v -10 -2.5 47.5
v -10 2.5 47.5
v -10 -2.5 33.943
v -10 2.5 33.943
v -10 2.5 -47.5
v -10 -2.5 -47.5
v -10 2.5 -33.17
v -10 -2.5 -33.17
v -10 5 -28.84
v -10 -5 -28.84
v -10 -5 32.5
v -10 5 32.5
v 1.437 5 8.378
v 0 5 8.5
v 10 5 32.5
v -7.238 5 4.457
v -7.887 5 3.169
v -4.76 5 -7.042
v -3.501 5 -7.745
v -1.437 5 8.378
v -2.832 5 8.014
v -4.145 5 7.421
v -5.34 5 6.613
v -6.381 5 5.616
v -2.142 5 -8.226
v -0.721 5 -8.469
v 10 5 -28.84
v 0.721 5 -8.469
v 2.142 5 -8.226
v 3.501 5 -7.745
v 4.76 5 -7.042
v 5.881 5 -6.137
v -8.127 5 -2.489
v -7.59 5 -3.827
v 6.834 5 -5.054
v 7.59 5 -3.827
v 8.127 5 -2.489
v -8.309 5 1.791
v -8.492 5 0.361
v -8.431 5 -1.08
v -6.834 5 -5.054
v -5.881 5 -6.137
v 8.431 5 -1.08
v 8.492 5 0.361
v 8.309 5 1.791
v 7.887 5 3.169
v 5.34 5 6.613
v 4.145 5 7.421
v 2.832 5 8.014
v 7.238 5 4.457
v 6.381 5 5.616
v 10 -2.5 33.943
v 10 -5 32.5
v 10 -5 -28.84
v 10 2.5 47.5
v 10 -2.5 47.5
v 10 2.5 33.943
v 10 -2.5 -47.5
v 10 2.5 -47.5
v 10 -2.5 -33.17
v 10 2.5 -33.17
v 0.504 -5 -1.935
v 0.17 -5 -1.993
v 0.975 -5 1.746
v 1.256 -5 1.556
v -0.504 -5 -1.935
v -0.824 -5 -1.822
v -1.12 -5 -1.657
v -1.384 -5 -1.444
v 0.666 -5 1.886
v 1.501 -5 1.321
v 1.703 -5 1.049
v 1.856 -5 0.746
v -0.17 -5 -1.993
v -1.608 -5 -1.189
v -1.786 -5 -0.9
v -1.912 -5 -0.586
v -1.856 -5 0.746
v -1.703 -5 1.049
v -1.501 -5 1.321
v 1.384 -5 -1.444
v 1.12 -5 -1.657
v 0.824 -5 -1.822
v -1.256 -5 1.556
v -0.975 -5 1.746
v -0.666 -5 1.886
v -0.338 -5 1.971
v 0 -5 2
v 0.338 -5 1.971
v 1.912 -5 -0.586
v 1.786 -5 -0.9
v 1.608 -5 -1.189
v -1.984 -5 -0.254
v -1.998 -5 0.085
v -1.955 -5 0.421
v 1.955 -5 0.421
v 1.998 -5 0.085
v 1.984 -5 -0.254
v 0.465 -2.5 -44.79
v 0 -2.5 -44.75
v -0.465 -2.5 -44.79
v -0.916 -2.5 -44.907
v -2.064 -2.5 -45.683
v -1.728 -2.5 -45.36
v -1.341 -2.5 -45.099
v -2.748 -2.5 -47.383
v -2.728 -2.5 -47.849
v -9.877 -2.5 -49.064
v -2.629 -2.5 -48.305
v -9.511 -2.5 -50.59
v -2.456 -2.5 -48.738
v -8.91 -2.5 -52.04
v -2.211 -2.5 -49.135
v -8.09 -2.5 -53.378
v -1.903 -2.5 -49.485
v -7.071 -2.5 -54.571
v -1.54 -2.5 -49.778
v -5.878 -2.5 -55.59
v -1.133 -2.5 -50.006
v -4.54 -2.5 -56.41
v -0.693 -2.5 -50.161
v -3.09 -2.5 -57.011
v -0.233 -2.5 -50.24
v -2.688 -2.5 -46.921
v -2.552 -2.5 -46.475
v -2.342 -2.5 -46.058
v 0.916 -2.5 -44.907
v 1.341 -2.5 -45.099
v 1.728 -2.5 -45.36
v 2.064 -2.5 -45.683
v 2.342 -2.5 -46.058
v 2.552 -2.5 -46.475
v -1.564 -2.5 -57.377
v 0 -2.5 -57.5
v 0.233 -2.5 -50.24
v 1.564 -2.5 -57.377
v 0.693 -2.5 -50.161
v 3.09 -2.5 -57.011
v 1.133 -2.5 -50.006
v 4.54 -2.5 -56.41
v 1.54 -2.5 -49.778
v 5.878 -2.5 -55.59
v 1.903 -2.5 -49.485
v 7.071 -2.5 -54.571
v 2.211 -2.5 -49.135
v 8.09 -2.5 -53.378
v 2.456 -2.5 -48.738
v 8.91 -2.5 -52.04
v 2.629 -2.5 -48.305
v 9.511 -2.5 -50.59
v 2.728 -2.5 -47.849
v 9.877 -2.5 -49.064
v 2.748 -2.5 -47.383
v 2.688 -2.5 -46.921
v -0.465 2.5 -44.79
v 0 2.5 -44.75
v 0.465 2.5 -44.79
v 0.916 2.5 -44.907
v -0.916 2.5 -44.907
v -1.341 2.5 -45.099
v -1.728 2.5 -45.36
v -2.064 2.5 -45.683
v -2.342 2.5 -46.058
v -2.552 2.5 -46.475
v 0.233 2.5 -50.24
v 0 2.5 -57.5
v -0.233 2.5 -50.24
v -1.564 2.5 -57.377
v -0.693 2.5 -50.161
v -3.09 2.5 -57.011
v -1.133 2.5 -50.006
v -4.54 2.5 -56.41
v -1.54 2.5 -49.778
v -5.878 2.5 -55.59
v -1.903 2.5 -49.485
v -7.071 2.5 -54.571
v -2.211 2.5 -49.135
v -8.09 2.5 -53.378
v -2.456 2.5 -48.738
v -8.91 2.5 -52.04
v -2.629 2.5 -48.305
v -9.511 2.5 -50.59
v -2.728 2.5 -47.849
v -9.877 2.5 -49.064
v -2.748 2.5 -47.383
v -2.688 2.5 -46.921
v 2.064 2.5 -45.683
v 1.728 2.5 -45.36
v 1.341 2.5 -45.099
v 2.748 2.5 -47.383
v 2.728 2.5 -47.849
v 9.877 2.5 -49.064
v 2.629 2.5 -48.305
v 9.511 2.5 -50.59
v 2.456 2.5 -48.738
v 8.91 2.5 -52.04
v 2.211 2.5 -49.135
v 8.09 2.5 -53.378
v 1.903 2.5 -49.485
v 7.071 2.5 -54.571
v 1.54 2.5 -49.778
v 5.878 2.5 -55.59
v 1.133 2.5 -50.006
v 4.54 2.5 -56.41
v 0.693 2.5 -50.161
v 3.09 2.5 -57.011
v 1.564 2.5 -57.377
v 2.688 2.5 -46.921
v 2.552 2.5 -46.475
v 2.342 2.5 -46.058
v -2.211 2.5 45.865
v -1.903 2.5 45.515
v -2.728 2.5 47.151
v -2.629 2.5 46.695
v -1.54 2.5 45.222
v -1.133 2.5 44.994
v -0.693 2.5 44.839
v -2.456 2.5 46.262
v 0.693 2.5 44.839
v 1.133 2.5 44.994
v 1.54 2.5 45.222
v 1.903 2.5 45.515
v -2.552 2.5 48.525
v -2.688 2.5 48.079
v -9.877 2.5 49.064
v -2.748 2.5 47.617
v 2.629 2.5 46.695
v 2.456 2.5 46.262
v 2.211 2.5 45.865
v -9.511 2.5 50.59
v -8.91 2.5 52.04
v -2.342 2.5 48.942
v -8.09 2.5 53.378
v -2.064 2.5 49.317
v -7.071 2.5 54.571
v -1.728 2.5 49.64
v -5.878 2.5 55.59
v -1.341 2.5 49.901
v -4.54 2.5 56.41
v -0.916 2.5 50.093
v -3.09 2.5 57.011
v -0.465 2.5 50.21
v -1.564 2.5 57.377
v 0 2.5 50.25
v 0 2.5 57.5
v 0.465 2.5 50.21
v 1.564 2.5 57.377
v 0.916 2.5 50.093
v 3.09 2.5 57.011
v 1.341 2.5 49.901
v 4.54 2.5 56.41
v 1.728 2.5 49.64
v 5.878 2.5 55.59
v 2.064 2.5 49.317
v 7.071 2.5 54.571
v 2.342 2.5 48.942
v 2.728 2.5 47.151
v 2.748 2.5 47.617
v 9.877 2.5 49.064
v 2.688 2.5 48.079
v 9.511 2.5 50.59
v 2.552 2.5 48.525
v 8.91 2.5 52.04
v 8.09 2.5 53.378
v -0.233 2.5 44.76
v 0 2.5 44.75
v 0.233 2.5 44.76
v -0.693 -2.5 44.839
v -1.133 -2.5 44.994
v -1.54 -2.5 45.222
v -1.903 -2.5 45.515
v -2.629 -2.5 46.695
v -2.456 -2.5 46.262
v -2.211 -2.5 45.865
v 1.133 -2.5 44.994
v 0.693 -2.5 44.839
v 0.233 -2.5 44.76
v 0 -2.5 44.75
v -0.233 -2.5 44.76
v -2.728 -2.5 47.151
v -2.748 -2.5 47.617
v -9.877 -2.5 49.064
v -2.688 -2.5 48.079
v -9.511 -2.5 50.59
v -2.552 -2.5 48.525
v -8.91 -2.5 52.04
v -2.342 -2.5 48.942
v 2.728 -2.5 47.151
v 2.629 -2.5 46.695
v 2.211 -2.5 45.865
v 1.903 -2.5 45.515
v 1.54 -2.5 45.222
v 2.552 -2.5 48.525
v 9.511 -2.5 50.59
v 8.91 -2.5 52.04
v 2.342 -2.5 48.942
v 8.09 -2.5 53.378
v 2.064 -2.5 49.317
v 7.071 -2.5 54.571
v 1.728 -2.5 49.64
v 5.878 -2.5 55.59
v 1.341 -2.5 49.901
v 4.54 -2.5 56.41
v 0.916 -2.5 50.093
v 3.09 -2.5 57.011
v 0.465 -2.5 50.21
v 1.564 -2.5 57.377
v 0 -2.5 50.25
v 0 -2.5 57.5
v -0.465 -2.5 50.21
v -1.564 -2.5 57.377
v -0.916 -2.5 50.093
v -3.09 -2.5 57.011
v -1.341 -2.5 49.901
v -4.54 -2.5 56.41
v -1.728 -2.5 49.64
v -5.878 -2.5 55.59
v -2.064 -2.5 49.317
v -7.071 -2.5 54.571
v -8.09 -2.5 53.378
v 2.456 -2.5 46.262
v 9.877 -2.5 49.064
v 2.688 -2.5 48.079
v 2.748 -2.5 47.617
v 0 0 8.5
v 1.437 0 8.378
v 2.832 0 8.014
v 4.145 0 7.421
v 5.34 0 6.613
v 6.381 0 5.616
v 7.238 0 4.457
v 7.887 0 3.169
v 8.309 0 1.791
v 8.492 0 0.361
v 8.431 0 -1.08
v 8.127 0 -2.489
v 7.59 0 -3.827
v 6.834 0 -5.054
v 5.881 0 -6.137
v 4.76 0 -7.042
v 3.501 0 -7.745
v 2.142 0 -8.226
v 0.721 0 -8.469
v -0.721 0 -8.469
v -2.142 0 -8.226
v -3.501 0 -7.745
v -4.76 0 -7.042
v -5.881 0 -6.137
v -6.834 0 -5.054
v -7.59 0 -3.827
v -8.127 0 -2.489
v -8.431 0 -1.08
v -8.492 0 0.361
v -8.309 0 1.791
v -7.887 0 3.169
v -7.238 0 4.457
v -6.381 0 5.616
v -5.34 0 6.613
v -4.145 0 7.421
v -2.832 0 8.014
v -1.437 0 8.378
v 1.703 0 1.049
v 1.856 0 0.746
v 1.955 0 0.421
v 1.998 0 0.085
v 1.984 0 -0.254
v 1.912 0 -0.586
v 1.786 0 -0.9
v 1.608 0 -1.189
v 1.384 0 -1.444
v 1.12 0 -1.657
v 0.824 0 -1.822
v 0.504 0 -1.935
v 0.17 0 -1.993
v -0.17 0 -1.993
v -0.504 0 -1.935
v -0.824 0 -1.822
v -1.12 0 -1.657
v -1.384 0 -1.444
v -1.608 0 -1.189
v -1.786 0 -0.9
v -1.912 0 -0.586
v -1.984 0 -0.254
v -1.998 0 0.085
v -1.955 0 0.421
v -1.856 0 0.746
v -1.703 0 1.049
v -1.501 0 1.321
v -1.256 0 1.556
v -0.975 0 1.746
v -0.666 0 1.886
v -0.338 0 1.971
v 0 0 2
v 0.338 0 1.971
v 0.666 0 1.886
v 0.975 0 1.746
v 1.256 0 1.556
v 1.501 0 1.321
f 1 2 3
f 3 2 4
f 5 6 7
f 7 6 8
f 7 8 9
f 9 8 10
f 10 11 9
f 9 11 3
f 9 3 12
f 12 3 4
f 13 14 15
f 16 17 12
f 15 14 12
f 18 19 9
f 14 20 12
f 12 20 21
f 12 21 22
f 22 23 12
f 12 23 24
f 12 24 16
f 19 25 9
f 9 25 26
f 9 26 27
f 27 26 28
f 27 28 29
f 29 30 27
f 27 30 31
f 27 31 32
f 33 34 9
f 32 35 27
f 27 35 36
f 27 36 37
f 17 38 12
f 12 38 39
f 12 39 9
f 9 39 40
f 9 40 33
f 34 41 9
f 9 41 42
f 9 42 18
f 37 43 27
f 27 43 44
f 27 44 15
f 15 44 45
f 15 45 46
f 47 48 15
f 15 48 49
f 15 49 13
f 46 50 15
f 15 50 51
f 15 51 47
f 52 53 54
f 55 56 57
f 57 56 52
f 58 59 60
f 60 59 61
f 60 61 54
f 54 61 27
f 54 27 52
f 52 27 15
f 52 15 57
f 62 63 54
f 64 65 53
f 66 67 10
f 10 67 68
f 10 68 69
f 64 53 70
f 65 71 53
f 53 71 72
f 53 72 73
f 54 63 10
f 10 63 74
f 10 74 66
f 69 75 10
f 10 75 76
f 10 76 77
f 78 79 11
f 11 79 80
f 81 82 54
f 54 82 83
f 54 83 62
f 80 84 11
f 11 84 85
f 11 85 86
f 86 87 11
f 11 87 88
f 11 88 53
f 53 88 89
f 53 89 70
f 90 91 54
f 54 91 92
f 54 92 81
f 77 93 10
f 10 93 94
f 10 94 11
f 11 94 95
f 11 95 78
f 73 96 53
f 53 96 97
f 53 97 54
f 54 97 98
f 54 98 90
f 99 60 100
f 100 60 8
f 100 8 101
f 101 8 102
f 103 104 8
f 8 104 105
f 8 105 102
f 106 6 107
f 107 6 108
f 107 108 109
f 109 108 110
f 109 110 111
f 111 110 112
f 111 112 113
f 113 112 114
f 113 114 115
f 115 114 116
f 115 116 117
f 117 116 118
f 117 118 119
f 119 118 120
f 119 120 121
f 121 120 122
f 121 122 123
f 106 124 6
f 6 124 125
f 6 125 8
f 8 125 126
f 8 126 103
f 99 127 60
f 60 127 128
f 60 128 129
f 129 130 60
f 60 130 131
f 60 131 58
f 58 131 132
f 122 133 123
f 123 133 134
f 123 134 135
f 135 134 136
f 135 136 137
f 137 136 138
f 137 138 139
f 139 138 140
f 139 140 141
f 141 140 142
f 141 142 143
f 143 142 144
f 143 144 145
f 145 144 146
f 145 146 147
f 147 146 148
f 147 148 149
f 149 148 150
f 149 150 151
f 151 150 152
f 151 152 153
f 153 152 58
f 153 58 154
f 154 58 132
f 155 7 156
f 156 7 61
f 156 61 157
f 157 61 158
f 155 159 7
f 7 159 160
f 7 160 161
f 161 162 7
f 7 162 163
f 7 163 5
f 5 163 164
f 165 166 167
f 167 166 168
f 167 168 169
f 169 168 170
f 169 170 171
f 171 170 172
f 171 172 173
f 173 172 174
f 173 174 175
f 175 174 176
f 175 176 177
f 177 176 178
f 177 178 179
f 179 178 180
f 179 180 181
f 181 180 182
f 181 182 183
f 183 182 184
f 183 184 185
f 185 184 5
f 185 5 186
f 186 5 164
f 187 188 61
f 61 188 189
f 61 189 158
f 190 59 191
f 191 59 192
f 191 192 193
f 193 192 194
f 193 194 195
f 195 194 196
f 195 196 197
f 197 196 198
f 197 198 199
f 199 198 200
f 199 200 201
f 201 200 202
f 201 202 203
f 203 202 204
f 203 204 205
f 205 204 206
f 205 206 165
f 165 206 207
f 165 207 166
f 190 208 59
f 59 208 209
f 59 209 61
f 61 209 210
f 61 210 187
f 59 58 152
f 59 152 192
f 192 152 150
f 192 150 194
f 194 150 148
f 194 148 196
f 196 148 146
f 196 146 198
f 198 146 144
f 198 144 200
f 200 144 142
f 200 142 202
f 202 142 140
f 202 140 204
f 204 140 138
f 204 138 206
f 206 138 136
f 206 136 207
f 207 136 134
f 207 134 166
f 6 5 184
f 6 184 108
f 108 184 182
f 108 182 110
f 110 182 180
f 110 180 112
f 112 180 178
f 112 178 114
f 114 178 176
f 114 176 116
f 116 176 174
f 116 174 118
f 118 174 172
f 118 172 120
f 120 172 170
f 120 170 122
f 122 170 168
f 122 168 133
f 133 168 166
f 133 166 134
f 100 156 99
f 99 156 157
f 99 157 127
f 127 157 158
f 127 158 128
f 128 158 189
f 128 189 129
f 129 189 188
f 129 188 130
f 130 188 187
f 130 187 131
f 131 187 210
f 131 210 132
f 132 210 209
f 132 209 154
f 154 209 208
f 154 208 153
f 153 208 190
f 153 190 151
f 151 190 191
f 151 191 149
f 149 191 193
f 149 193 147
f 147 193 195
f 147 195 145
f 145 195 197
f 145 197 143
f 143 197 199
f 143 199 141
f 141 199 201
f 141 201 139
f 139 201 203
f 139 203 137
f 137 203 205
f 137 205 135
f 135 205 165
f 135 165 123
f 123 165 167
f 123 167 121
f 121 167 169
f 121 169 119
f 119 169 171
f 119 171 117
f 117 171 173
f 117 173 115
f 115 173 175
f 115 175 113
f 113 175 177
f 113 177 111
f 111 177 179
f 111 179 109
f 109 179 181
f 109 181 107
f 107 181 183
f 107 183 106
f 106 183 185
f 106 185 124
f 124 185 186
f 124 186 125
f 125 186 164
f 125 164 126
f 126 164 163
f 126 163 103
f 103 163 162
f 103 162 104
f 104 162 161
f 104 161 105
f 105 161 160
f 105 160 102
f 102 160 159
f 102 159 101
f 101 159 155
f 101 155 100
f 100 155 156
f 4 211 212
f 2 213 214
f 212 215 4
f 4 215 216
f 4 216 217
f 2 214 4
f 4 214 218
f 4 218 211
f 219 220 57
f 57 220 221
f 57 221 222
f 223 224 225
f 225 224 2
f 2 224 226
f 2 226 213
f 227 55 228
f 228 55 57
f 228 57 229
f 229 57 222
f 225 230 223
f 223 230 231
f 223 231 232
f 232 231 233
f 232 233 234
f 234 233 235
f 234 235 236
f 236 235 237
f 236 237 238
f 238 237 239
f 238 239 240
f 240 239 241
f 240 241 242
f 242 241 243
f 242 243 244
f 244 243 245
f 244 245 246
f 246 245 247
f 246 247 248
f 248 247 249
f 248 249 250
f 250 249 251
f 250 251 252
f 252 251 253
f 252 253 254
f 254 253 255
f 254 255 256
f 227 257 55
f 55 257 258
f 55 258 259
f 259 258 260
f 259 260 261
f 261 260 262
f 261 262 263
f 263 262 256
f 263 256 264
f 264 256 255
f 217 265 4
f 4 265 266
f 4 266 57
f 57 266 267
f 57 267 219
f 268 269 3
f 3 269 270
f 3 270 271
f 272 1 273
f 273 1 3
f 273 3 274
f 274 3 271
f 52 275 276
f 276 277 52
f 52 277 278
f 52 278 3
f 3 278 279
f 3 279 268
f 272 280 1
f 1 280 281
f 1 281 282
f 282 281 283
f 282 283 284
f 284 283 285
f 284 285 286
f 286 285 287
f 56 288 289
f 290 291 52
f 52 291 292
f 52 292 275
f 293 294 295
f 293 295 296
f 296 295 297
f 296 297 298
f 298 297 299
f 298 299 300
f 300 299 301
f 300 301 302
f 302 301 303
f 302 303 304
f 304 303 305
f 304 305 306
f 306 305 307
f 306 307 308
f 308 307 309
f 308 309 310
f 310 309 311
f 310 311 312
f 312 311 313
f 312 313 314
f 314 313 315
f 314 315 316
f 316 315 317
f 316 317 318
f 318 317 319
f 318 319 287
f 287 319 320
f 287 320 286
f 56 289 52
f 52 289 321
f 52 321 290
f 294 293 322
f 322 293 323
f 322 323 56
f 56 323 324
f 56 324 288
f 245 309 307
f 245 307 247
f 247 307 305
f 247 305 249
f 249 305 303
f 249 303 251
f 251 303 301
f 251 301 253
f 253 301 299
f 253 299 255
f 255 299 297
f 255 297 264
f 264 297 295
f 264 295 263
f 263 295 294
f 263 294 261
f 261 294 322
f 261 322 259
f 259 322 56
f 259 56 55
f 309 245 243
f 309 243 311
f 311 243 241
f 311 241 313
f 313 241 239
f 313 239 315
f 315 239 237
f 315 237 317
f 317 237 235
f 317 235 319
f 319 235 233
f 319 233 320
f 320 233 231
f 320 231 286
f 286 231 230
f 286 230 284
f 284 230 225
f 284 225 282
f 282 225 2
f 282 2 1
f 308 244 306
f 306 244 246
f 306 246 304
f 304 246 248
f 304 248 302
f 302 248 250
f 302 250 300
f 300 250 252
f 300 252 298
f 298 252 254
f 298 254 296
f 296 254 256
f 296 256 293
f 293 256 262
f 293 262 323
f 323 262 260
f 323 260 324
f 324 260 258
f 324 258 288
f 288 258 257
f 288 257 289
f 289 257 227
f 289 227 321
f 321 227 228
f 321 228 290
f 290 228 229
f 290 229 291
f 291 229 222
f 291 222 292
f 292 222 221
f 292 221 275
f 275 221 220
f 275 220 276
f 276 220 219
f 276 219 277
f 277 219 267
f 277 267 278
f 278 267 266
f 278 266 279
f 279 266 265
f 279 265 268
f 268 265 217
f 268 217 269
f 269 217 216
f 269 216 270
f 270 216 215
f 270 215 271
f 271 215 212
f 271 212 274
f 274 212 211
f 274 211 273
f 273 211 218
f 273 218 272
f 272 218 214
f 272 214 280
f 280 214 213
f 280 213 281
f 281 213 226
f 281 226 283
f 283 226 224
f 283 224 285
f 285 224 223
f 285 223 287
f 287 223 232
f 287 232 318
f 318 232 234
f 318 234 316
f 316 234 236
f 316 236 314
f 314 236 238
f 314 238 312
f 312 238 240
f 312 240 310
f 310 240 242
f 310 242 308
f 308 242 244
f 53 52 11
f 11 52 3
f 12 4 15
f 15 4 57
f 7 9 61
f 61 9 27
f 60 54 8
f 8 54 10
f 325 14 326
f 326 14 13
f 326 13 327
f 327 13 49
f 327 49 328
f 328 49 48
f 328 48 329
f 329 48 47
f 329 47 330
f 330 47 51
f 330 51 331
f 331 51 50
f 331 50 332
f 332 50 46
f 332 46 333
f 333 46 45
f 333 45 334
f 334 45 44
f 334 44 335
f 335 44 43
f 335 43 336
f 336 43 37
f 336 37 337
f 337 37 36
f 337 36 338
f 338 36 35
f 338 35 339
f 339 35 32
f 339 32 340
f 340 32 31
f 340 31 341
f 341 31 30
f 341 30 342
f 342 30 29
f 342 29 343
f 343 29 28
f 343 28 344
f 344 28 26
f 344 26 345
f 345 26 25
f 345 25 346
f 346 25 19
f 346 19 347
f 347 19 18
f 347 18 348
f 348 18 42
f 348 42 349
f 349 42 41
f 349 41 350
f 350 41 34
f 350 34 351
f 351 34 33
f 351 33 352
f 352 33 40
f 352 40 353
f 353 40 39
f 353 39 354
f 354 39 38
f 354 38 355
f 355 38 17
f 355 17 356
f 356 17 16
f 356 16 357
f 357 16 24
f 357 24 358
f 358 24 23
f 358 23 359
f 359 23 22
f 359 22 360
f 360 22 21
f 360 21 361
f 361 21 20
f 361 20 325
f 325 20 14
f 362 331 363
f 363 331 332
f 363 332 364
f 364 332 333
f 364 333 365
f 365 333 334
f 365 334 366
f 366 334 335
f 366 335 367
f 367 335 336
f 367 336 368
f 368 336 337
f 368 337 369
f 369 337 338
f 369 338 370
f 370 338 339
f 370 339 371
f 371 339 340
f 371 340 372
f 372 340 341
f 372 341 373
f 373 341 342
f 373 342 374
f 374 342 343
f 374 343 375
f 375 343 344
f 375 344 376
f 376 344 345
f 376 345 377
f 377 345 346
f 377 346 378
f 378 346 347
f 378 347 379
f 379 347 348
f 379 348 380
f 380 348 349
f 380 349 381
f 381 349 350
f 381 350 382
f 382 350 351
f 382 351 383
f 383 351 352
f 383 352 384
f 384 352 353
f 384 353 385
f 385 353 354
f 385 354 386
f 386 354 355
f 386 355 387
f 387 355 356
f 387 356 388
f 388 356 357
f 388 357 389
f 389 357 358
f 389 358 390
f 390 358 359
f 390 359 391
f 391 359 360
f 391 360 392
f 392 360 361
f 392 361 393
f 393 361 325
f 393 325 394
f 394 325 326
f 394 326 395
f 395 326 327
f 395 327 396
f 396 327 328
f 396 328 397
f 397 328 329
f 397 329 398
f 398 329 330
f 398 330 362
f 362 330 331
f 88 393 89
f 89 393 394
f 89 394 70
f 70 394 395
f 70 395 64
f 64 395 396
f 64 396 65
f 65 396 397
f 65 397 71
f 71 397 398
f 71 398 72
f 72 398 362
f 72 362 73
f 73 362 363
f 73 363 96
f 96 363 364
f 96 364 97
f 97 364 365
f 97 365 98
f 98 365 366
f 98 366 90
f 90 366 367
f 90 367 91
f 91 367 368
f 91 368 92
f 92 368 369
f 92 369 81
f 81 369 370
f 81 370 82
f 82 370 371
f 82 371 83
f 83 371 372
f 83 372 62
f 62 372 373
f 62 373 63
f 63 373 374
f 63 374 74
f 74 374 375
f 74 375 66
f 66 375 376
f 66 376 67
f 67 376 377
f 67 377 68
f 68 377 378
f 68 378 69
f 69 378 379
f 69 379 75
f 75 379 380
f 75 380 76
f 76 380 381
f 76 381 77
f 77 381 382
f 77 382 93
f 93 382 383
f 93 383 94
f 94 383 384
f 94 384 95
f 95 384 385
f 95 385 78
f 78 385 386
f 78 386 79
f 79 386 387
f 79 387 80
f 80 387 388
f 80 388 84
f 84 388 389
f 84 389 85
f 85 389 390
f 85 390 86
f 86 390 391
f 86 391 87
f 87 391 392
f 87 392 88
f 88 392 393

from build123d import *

# Parameters (mm, degrees)
BOSS_EXTRUDE1_DEPTH      = 37.5
BOSS_EXTRUDE1_DEPTH_BACK = 37.5
SKETCH1_W                = 20
SKETCH1_H                = 10
SKETCH3_W                = 20
SKETCH3_H                = 5
BOSS_EXTRUDE2_DEPTH      = 20
FILLET1_R                = 10
SKETCH4_R                = 2.75
CUT_EXTRUDE1_DEPTH       = 59.84301148
FILLET1_OF_MIRROR3_R     = 10
CHAMFER1_SIZE            = 8.660254038
CHAMFER1_SIZE_2          = 5
SKETCH6_R                = 8.5
CUT_EXTRUDE2_DEPTH       = 5
CUT_EXTRUDE3_DEPTH       = 59.576872569
CUT_EXTRUDE3_DEPTH_BACK  = 59.576872569
SKETCH7_R                = 2


# Some blends are built 0.0001 mm under size
with BuildPart() as part:
    # Sketch1 → Boss-Extrude1 (new, two sides: drawn at the far end of the back side and taken through both)
    with BuildSketch(Plane.XY.offset(-BOSS_EXTRUDE1_DEPTH_BACK)):
        Rectangle(SKETCH1_W, SKETCH1_H)
    extrude(amount=BOSS_EXTRUDE1_DEPTH + BOSS_EXTRUDE1_DEPTH_BACK)

    # Sketch3 → Boss-Extrude2 (add)
    with BuildSketch(Plane(origin=(0, 0, -37.5), x_dir=(-1, 0, 0), z_dir=(0, 0, -1))):
        Rectangle(SKETCH3_W, SKETCH3_H)
    boss_extrude2 = extrude(amount=BOSS_EXTRUDE2_DEPTH)

    # Fillet1
    fillet1_edges = [part.edges().sort_by_distance(p)[0] for p in [
        (-10, 0, -57.5),
        (10, 0, -57.5),
    ]]
    fillet(fillet1_edges, radius=FILLET1_R - 0.0001)  # a hair under: the kernel refuses the full size

    # Sketch4 → Cut-Extrude1 (cut, through all)
    with BuildSketch(Plane(origin=(0, 2.5, 0), x_dir=(1, 0, 0), z_dir=(0, 1, 0))):
        with Locations(Location((0, 47.5, 0), (0, 0, 270))):
            Circle(SKETCH4_R)
    cut_extrude1 = extrude(amount=-CUT_EXTRUDE1_DEPTH, mode=Mode.SUBTRACT)

    # Mirror3: Boss-Extrude2, Cut-Extrude1 across plane
    add(boss_extrude2.mirror(Plane.XY))
    add(cut_extrude1.mirror(Plane.XY), mode=Mode.SUBTRACT)

    # Fillet1 of Mirror3
    fillet1_of_mirror3_edges = [part.edges().sort_by_distance(p)[0] for p in [
        (-10, 0, 57.5),
        (10, 0, 57.5),
    ]]
    fillet(fillet1_of_mirror3_edges, radius=FILLET1_OF_MIRROR3_R - 0.0001)  # a hair under: the kernel refuses the full size

    # Chamfer1
    # the kernel refuses this chamfer: 8.660254038, 5 mm, written as the material it takes off along each edge
    with BuildSketch(Plane(origin=(32.404819853, 5, -37.5), x_dir=(0, 0.019326765612700598, 0.9998132206222078), z_dir=(-1, 0, 0))) as chamfer1_piece_1_section:
        Polygon((CHAMFER1_SIZE * 0.999813220604, -CHAMFER1_SIZE * 0.0193267656124), (-CHAMFER1_SIZE_2 * 0.0193267656127, -CHAMFER1_SIZE_2 * 0.999813220622), (0, 0), align=None)
    chamfer1_piece_1 = extrude(amount=64.809639706, mode=Mode.PRIVATE)
    chamfer1_piece_1 = split(chamfer1_piece_1, bisect_by=Plane(origin=(0, 2.5, -34.039331058), z_dir=(0, 1, 0)), keep=Keep.TOP, mode=Mode.PRIVATE)
    add(chamfer1_piece_1, mode=Mode.SUBTRACT)
    with BuildSketch(Plane(origin=(-32.404819853, -5, -37.5), x_dir=(0, -0.019326765612700598, 0.9998132206222078), z_dir=(1, 0, 0))) as chamfer1_piece_2_section:
        Polygon((CHAMFER1_SIZE * 0.999813220604, -CHAMFER1_SIZE * 0.0193267656124), (-CHAMFER1_SIZE_2 * 0.0193267656127, -CHAMFER1_SIZE_2 * 0.999813220622), (0, 0), align=None)
    chamfer1_piece_2 = extrude(amount=64.809639706, mode=Mode.PRIVATE)
    chamfer1_piece_2 = split(chamfer1_piece_2, bisect_by=Plane(origin=(0, -2.5, -34.039331058), z_dir=(0, -1, 0)), keep=Keep.TOP, mode=Mode.PRIVATE)
    add(chamfer1_piece_2, mode=Mode.SUBTRACT)
    with BuildSketch(Plane(origin=(-32.404819853, -5, 37.5), x_dir=(0, 0.999813220622208, 0.019326765612700494), z_dir=(1, 0, 0))) as chamfer1_piece_3_section:
        Polygon((CHAMFER1_SIZE * 0.999813220604, -CHAMFER1_SIZE * 0.0193267656124), (-CHAMFER1_SIZE_2 * 0.0193267656127, -CHAMFER1_SIZE_2 * 0.999813220622), (0, 0), align=None)
    chamfer1_piece_3 = extrude(amount=64.809639706, mode=Mode.PRIVATE)
    chamfer1_piece_3 = split(chamfer1_piece_3, bisect_by=Plane(origin=(0, 2.5, 37.476500167), z_dir=(0, 1, 0)), keep=Keep.TOP, mode=Mode.PRIVATE)
    add(chamfer1_piece_3, mode=Mode.SUBTRACT)
    with BuildSketch(Plane(origin=(-32.404819853, -5, 37.5), x_dir=(0, 0.999813220622208, 0.019326765612700494), z_dir=(1, 0, 0))) as chamfer1_piece_4_section:
        Polygon((CHAMFER1_SIZE * 0.999813220604, -CHAMFER1_SIZE * 0.0193267656124), (-CHAMFER1_SIZE_2 * 0.0193267656127, -CHAMFER1_SIZE_2 * 0.999813220622), (0, 0), align=None)
    chamfer1_piece_4 = extrude(amount=64.809639706, mode=Mode.PRIVATE)
    chamfer1_piece_4 = split(chamfer1_piece_4, bisect_by=Plane(origin=(0, -2.5, 35.327003025), z_dir=(0, -1, 0)), keep=Keep.TOP, mode=Mode.PRIVATE)
    add(chamfer1_piece_4, mode=Mode.SUBTRACT)
    with BuildSketch(Plane(origin=(32.404819853, 5, 37.5), x_dir=(0, -0.999813220622208, 0.019326765612700494), z_dir=(-1, 0, 0))) as chamfer1_piece_5_section:
        Polygon((CHAMFER1_SIZE * 0.999813220604, -CHAMFER1_SIZE * 0.0193267656124), (-CHAMFER1_SIZE_2 * 0.0193267656127, -CHAMFER1_SIZE_2 * 0.999813220622), (0, 0), align=None)
    chamfer1_piece_5 = extrude(amount=64.809639706, mode=Mode.PRIVATE)
    chamfer1_piece_5 = split(chamfer1_piece_5, bisect_by=Plane(origin=(0, -2.5, 37.476500167), z_dir=(0, -1, 0)), keep=Keep.TOP, mode=Mode.PRIVATE)
    add(chamfer1_piece_5, mode=Mode.SUBTRACT)
    with BuildSketch(Plane(origin=(32.404819853, 5, 37.5), x_dir=(0, -0.999813220622208, 0.019326765612700494), z_dir=(-1, 0, 0))) as chamfer1_piece_6_section:
        Polygon((CHAMFER1_SIZE * 0.999813220604, -CHAMFER1_SIZE * 0.0193267656124), (-CHAMFER1_SIZE_2 * 0.0193267656127, -CHAMFER1_SIZE_2 * 0.999813220622), (0, 0), align=None)
    chamfer1_piece_6 = extrude(amount=64.809639706, mode=Mode.PRIVATE)
    chamfer1_piece_6 = split(chamfer1_piece_6, bisect_by=Plane(origin=(0, 2.5, 35.327003025), z_dir=(0, 1, 0)), keep=Keep.TOP, mode=Mode.PRIVATE)
    add(chamfer1_piece_6, mode=Mode.SUBTRACT)

    # Sketch6 → Cut-Extrude2 (cut)
    with BuildSketch(Plane(origin=(0, 5, 0), x_dir=(1, 0, 0), z_dir=(0, 1, 0))):
        with Locations(Location((0, 0, 0), (0, 0, 270))):
            Circle(SKETCH6_R)
    extrude(amount=-CUT_EXTRUDE2_DEPTH, mode=Mode.SUBTRACT)

    # Sketch7 → Cut-Extrude3 (cut, two sides: drawn at the far end of the back side and taken through both)
    with BuildSketch(Plane(origin=(0, 0, 0), x_dir=(1, 0, 0), z_dir=(0, 1, 0)).offset(-CUT_EXTRUDE3_DEPTH_BACK)):
        with Locations(Location((0, 0, 0), (0, 0, 270))):
            Circle(SKETCH7_R)
    extrude(amount=CUT_EXTRUDE3_DEPTH + CUT_EXTRUDE3_DEPTH_BACK, mode=Mode.SUBTRACT)


solid = part.part
